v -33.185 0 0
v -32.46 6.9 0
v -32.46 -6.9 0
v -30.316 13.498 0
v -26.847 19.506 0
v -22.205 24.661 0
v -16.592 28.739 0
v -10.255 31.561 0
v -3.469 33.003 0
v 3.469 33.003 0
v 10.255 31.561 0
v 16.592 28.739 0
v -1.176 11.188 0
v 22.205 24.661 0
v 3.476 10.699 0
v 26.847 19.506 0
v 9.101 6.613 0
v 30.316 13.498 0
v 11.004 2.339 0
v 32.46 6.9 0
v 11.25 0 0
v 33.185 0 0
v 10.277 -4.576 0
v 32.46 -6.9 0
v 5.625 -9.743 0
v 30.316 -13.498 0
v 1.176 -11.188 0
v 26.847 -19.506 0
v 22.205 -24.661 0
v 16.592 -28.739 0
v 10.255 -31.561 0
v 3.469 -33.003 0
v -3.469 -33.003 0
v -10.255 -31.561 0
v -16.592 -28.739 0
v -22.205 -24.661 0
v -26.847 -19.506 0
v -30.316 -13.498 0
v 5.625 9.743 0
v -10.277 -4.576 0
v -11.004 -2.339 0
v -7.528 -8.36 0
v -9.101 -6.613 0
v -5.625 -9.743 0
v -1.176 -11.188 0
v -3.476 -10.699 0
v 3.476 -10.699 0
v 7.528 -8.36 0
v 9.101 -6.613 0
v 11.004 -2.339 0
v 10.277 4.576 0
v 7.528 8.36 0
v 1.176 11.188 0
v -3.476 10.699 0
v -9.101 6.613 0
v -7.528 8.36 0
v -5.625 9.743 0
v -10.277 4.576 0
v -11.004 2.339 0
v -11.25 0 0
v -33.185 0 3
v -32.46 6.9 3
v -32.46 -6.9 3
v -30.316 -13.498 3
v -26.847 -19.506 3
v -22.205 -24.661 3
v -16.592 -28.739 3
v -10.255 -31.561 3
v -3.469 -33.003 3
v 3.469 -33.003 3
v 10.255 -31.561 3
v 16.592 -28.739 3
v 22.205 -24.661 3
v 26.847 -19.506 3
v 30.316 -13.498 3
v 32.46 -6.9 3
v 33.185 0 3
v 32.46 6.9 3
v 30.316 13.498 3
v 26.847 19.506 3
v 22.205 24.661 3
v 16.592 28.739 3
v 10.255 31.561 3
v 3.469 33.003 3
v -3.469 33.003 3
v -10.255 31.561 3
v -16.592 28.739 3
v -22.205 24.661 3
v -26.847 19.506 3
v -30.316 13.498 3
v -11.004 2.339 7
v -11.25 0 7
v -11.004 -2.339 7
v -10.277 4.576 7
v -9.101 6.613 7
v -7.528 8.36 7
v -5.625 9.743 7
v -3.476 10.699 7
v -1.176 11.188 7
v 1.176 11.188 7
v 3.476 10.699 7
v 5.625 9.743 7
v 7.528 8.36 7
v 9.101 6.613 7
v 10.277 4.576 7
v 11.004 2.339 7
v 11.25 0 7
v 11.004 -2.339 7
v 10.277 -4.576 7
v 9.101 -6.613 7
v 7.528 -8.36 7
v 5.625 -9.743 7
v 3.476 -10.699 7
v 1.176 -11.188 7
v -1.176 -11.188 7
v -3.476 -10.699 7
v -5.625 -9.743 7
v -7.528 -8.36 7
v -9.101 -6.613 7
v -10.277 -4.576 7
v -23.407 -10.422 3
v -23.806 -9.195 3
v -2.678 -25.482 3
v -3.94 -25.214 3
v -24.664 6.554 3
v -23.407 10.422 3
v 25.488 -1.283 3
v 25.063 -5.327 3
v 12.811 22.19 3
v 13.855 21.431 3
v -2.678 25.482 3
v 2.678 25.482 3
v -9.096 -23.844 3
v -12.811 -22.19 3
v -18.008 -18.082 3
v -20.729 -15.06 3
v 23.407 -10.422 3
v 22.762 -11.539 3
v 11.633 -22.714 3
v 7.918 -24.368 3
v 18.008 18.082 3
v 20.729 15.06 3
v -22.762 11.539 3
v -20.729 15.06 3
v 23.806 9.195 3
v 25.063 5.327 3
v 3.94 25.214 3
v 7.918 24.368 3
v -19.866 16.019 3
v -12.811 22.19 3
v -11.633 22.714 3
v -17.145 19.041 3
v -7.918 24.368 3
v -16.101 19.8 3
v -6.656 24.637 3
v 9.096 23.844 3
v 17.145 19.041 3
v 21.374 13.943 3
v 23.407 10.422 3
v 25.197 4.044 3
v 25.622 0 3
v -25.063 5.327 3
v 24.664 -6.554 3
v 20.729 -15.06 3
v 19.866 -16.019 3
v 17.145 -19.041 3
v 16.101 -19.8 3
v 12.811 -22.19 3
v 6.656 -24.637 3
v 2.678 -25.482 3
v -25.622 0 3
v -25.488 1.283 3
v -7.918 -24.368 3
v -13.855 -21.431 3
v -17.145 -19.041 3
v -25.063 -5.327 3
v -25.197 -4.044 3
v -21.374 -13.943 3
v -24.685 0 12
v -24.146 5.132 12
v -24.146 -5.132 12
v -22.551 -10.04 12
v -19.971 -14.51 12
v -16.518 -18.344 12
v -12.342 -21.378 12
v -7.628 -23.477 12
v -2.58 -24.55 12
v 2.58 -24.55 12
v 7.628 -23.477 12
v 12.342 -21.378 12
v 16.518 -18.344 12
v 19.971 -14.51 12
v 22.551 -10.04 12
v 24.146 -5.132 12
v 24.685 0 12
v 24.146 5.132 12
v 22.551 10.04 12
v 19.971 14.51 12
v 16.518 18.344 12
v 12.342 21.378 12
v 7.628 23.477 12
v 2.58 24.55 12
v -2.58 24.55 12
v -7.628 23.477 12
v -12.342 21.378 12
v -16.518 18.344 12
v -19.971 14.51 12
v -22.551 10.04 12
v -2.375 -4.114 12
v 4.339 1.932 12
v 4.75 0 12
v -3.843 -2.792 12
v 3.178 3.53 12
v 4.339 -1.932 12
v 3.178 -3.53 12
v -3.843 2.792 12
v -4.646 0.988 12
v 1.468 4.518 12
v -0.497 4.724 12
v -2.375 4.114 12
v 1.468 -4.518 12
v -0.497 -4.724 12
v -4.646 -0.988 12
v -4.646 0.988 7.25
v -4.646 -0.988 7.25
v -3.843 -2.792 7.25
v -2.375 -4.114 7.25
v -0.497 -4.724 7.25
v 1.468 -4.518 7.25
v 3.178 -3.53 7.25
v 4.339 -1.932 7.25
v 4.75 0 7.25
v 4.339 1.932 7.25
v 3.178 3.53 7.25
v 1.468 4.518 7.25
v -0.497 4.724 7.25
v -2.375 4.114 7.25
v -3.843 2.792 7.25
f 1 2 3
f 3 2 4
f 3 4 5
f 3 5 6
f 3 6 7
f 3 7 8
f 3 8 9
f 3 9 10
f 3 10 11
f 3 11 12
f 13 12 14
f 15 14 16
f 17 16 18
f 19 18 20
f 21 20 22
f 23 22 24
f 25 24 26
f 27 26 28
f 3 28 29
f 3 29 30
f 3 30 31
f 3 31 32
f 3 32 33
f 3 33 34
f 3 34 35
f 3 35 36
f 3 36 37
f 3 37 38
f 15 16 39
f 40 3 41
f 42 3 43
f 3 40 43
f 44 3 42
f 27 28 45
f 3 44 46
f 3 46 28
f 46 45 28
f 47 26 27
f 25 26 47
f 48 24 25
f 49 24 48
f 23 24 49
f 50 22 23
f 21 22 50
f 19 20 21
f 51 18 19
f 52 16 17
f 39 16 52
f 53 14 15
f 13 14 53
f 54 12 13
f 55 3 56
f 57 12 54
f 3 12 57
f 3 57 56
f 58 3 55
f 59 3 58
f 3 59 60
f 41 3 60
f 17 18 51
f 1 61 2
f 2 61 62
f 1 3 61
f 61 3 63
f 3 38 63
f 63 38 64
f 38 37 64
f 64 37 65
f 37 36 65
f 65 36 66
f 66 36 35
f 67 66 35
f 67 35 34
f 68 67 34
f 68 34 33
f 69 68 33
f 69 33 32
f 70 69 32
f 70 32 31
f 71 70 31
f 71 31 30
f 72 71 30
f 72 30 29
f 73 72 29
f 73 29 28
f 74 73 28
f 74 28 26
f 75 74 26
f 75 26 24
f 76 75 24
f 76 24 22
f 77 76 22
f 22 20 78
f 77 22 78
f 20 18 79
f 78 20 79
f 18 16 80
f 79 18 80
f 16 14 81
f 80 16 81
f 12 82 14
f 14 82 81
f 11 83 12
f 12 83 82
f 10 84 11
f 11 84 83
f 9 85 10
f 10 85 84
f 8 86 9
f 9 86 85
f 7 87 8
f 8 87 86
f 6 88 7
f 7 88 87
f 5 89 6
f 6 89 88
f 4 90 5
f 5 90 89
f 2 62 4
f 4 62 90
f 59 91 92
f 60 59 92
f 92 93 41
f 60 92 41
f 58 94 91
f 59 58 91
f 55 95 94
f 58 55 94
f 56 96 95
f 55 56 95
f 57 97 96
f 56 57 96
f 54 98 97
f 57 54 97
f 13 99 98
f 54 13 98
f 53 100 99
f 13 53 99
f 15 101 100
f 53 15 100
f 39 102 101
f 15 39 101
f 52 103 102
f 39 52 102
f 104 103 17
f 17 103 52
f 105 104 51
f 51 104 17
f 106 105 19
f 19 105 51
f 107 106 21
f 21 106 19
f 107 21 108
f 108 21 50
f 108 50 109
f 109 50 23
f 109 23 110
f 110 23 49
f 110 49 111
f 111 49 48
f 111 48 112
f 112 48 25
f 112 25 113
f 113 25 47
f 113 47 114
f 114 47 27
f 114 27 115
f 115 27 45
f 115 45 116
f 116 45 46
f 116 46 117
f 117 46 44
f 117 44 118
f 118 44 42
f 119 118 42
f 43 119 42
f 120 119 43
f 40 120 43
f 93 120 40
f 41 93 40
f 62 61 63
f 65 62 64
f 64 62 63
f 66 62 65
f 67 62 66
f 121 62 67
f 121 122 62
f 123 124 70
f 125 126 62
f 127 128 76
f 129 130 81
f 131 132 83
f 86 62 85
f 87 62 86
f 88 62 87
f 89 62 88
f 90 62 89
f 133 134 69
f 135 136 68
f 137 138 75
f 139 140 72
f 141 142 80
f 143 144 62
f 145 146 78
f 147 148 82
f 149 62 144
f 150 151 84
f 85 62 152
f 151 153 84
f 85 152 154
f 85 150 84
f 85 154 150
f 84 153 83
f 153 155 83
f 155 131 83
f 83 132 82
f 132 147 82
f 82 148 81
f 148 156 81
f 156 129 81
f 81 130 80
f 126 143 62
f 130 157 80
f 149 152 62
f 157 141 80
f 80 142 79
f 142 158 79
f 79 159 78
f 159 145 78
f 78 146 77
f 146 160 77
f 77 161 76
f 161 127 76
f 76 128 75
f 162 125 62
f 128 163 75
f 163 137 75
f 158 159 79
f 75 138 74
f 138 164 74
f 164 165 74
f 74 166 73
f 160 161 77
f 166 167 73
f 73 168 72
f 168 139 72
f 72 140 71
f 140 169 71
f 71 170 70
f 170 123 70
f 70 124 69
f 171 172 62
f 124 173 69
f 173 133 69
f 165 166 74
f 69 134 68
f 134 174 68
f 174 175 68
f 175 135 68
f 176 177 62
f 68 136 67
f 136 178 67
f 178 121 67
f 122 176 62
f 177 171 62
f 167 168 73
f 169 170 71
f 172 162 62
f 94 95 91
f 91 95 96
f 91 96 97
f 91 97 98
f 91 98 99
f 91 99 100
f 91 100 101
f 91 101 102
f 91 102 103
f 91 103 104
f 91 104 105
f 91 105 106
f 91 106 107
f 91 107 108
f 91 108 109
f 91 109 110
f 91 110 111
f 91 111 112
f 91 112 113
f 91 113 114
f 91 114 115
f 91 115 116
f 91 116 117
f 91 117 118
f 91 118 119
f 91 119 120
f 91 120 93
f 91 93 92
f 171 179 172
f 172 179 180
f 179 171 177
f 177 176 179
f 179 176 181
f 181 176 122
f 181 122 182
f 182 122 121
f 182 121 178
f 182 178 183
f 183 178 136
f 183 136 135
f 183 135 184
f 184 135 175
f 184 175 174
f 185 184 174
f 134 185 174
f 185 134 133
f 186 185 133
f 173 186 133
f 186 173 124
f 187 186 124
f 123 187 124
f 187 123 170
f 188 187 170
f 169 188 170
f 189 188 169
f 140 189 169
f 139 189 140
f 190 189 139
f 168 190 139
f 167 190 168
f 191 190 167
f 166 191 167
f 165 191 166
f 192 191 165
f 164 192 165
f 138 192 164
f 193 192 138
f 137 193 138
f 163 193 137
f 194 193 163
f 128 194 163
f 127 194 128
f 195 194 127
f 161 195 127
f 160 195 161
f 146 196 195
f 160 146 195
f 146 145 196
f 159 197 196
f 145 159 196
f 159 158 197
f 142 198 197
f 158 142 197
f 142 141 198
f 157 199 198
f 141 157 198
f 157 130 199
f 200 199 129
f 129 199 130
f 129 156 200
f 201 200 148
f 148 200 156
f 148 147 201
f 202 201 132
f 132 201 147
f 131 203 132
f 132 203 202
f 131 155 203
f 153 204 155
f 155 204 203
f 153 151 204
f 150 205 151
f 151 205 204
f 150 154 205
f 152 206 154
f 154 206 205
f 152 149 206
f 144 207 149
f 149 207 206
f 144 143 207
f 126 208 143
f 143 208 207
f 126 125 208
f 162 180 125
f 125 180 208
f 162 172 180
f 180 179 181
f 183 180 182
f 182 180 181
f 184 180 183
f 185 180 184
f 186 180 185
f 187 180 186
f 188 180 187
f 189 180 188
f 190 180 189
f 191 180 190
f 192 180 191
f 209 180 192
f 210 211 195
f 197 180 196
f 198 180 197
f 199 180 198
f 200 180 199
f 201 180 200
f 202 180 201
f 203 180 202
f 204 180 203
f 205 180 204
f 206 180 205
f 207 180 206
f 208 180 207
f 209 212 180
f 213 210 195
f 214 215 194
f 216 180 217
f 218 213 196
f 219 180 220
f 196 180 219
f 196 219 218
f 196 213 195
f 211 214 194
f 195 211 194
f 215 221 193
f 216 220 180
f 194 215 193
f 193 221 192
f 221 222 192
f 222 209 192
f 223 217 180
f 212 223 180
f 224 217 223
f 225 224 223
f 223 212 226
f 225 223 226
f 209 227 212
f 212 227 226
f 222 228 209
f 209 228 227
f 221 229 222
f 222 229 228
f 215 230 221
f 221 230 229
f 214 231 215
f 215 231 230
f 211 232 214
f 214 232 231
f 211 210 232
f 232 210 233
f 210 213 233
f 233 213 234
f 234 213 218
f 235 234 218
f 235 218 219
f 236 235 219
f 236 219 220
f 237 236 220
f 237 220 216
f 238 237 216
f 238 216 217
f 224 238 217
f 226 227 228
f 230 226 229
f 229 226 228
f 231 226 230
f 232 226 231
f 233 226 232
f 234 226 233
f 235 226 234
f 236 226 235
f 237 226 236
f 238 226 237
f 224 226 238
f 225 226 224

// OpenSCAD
module spindleBearingAdapter()
{

	spindleConeInnerDia2 = 51.87 - .5;  //spool ID minus a little slop
	spindleConeInnerDia1 = spindleConeInnerDia2-2;  //make a nice cone shape
	spindleThickness = 12;

	rimDia = spindleConeInnerDia2 + 15;
	rimWidth = 3;

	bearingOuterDia = 22+.5;
	bearingInnerDia = 9.5;
	bearingThickness = 7;
      
	PrintLayerThinckness = .25;  //used to place a single layer bellow the unsupported hole.  Must be drilled out, but it makes a cleaner bridge. 0 if you want to just have an uglier bridge that you scrape out with a knife.


	difference(){
		union(){
			translate([0, 0, 0])
			cylinder(r = rimDia/2, h = rimWidth);

			cylinder(r2 = spindleConeInnerDia1/2, r1 = (spindleConeInnerDia2+rimWidth*(spindleConeInnerDia2-spindleConeInnerDia1)/spindleThickness)/2, h = spindleThickness);
		}

		translate([0, 0, -1])
		cylinder(r = bearingOuterDia/2, h = bearingThickness+1);

		translate([0, 0, PrintLayerThinckness+bearingThickness])
	#	cylinder(r = bearingInnerDia/2, h = spindleThickness-bearingThickness+1);
		}
}

spindleBearingAdapter();
